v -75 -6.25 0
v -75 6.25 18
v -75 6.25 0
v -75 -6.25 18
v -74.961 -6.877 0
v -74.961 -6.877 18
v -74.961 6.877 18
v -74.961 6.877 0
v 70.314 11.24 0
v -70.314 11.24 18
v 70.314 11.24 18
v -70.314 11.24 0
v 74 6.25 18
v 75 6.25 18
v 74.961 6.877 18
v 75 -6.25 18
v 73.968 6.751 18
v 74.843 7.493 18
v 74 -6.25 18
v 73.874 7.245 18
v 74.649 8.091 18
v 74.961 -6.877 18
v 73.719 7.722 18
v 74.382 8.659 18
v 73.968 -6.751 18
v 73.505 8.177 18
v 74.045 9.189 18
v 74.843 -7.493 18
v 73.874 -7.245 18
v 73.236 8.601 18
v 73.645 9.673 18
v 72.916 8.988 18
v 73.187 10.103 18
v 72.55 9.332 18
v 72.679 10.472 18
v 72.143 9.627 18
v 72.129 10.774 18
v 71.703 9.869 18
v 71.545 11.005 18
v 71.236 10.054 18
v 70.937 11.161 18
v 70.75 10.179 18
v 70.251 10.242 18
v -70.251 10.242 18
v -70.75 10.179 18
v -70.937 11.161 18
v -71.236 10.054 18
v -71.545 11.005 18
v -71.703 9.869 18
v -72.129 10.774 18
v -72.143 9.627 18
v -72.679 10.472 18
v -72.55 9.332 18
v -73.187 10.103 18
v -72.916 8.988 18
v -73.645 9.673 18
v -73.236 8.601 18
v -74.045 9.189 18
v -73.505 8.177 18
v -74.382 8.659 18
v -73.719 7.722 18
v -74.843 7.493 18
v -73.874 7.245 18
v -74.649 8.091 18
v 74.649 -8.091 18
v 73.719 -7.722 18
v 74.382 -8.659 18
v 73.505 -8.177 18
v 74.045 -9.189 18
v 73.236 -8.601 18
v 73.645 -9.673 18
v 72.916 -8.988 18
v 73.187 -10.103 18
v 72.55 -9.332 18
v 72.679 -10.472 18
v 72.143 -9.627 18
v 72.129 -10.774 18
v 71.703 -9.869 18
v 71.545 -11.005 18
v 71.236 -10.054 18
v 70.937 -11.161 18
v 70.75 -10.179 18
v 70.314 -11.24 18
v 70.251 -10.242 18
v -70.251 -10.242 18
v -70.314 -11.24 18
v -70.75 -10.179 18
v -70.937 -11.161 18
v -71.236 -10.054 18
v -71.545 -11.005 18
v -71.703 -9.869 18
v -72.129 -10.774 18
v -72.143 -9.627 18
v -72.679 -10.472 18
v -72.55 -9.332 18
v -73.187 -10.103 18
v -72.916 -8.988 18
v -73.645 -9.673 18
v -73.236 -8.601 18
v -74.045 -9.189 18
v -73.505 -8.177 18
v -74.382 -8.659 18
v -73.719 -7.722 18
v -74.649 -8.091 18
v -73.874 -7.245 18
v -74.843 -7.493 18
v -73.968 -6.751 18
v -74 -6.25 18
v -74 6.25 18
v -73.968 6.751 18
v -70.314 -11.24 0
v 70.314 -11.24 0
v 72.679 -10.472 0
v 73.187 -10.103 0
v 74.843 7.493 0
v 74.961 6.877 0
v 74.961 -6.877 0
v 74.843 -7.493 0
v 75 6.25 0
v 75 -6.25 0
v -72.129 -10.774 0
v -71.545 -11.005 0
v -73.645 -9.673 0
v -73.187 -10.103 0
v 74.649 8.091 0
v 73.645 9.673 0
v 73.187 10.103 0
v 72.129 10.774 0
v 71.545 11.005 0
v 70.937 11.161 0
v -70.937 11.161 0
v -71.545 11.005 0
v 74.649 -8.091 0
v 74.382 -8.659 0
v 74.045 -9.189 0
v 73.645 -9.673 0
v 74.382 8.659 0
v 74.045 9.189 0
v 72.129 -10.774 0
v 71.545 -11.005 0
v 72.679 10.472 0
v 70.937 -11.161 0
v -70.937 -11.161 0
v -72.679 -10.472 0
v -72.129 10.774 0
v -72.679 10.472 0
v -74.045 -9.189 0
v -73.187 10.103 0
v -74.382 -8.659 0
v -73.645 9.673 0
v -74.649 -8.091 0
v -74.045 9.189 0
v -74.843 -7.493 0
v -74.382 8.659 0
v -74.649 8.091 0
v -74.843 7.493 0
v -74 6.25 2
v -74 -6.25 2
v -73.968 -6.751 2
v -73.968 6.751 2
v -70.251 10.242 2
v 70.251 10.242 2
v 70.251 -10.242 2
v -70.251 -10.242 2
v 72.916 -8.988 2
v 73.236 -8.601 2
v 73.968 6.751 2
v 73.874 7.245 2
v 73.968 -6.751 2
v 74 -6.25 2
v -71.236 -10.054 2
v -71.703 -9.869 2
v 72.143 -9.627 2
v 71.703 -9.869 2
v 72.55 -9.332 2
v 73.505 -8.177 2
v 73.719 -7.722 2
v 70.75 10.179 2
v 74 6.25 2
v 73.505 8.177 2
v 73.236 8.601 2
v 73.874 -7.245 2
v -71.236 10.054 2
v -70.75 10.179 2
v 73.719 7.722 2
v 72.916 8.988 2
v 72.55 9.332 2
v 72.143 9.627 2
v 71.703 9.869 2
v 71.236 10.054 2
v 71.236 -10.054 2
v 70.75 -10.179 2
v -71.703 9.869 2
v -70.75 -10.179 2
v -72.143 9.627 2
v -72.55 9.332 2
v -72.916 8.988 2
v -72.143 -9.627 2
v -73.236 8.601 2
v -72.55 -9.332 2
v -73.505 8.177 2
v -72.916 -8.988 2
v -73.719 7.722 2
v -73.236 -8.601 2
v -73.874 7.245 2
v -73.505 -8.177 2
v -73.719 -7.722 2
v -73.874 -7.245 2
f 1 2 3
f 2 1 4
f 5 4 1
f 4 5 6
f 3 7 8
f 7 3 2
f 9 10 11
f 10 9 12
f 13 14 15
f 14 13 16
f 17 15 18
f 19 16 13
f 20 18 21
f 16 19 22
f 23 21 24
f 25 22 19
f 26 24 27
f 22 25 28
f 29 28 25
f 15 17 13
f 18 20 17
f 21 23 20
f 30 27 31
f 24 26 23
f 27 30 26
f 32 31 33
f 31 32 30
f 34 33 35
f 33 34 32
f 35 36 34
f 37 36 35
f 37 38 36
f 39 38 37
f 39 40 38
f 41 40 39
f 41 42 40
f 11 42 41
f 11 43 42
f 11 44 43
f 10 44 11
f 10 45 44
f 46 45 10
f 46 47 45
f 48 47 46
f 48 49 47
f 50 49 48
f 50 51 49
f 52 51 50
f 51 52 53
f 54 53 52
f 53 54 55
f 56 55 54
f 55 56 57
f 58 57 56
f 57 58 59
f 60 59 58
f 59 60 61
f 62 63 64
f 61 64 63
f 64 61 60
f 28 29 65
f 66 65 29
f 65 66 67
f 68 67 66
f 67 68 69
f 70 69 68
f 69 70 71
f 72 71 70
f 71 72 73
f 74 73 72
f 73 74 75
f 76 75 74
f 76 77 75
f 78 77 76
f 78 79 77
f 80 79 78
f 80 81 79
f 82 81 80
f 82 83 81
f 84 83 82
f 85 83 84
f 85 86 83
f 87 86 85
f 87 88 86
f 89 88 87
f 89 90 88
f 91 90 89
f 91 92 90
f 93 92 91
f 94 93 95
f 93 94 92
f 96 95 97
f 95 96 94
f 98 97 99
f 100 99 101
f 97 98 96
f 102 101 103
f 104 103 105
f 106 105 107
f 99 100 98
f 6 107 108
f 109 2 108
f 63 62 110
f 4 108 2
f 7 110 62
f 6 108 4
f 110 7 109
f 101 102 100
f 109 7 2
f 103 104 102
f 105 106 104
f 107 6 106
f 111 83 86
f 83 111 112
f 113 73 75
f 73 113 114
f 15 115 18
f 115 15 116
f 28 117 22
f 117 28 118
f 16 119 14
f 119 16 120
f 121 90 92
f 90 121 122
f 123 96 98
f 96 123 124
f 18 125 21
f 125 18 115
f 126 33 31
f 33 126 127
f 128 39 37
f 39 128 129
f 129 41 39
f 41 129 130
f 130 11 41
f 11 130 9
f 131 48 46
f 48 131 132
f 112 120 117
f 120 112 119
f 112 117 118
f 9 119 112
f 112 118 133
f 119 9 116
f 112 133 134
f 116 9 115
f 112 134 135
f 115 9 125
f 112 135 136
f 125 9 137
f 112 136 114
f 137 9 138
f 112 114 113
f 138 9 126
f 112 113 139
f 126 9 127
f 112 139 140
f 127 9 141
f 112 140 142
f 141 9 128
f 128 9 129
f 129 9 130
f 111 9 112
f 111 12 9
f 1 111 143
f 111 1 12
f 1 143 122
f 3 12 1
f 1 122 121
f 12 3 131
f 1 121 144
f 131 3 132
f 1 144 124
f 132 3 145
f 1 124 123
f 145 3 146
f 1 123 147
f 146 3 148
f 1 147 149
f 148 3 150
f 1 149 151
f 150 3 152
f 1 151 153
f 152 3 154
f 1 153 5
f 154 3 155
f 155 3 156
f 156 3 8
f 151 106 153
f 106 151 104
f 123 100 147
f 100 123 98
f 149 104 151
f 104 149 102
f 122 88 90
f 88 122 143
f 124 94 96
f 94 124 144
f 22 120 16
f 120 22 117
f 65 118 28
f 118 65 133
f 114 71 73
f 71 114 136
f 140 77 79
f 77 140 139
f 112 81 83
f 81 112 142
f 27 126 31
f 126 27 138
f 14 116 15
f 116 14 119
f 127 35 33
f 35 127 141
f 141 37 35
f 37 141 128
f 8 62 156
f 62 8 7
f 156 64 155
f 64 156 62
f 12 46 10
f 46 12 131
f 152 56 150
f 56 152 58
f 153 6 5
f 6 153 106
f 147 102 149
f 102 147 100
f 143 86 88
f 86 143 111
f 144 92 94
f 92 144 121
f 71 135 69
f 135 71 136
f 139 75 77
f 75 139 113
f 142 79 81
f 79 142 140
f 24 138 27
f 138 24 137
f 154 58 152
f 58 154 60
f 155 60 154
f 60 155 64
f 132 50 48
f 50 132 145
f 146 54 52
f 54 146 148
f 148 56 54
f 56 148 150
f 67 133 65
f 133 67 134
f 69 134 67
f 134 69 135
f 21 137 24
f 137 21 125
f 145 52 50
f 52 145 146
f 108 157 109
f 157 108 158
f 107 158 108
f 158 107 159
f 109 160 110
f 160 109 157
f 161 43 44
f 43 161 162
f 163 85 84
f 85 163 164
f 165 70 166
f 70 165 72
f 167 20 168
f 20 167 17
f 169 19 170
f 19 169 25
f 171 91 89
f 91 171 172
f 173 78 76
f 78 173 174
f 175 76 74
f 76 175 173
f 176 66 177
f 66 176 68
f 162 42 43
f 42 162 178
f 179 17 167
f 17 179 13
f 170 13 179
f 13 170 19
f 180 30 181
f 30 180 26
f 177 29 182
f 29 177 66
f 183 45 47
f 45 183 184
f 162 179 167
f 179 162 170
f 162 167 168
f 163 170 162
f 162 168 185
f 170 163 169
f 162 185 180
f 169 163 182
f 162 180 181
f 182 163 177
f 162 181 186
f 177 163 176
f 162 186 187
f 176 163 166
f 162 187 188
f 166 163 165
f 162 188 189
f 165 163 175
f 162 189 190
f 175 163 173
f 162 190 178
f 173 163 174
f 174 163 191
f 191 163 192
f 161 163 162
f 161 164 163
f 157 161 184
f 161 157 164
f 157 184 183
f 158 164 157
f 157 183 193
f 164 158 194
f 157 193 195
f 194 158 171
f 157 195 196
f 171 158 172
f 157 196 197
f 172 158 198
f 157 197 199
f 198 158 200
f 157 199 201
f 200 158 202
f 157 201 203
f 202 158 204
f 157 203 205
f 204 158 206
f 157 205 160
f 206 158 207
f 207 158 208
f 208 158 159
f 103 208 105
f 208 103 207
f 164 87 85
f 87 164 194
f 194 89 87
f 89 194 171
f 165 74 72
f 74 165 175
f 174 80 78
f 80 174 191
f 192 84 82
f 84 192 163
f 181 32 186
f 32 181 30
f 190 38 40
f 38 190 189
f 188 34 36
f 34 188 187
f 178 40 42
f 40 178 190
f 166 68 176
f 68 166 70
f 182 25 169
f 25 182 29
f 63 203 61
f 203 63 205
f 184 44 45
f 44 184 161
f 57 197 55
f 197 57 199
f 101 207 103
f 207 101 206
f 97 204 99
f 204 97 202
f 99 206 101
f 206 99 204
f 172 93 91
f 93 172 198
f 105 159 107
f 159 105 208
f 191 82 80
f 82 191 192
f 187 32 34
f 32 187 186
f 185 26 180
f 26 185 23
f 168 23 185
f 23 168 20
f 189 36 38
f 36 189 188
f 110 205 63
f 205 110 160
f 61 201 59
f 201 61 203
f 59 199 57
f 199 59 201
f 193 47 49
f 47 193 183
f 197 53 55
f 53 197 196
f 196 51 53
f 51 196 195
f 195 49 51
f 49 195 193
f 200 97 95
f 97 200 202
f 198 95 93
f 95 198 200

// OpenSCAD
$fn = 50;


difference() {
	union() {
		hull() {
			translate(v = [-70.0000000000, 6.2500000000, 0]) {
				cylinder(h = 18, r = 5);
			}
			translate(v = [70.0000000000, 6.2500000000, 0]) {
				cylinder(h = 18, r = 5);
			}
			translate(v = [-70.0000000000, -6.2500000000, 0]) {
				cylinder(h = 18, r = 5);
			}
			translate(v = [70.0000000000, -6.2500000000, 0]) {
				cylinder(h = 18, r = 5);
			}
		}
	}
	union() {
		translate(v = [0, 0, 2]) {
			hull() {
				translate(v = [-70.0000000000, 6.2500000000, 0]) {
					cylinder(h = 16, r = 4);
				}
				translate(v = [70.0000000000, 6.2500000000, 0]) {
					cylinder(h = 16, r = 4);
				}
				translate(v = [-70.0000000000, -6.2500000000, 0]) {
					cylinder(h = 16, r = 4);
				}
				translate(v = [70.0000000000, -6.2500000000, 0]) {
					cylinder(h = 16, r = 4);
				}
			}
		}
	}
}
